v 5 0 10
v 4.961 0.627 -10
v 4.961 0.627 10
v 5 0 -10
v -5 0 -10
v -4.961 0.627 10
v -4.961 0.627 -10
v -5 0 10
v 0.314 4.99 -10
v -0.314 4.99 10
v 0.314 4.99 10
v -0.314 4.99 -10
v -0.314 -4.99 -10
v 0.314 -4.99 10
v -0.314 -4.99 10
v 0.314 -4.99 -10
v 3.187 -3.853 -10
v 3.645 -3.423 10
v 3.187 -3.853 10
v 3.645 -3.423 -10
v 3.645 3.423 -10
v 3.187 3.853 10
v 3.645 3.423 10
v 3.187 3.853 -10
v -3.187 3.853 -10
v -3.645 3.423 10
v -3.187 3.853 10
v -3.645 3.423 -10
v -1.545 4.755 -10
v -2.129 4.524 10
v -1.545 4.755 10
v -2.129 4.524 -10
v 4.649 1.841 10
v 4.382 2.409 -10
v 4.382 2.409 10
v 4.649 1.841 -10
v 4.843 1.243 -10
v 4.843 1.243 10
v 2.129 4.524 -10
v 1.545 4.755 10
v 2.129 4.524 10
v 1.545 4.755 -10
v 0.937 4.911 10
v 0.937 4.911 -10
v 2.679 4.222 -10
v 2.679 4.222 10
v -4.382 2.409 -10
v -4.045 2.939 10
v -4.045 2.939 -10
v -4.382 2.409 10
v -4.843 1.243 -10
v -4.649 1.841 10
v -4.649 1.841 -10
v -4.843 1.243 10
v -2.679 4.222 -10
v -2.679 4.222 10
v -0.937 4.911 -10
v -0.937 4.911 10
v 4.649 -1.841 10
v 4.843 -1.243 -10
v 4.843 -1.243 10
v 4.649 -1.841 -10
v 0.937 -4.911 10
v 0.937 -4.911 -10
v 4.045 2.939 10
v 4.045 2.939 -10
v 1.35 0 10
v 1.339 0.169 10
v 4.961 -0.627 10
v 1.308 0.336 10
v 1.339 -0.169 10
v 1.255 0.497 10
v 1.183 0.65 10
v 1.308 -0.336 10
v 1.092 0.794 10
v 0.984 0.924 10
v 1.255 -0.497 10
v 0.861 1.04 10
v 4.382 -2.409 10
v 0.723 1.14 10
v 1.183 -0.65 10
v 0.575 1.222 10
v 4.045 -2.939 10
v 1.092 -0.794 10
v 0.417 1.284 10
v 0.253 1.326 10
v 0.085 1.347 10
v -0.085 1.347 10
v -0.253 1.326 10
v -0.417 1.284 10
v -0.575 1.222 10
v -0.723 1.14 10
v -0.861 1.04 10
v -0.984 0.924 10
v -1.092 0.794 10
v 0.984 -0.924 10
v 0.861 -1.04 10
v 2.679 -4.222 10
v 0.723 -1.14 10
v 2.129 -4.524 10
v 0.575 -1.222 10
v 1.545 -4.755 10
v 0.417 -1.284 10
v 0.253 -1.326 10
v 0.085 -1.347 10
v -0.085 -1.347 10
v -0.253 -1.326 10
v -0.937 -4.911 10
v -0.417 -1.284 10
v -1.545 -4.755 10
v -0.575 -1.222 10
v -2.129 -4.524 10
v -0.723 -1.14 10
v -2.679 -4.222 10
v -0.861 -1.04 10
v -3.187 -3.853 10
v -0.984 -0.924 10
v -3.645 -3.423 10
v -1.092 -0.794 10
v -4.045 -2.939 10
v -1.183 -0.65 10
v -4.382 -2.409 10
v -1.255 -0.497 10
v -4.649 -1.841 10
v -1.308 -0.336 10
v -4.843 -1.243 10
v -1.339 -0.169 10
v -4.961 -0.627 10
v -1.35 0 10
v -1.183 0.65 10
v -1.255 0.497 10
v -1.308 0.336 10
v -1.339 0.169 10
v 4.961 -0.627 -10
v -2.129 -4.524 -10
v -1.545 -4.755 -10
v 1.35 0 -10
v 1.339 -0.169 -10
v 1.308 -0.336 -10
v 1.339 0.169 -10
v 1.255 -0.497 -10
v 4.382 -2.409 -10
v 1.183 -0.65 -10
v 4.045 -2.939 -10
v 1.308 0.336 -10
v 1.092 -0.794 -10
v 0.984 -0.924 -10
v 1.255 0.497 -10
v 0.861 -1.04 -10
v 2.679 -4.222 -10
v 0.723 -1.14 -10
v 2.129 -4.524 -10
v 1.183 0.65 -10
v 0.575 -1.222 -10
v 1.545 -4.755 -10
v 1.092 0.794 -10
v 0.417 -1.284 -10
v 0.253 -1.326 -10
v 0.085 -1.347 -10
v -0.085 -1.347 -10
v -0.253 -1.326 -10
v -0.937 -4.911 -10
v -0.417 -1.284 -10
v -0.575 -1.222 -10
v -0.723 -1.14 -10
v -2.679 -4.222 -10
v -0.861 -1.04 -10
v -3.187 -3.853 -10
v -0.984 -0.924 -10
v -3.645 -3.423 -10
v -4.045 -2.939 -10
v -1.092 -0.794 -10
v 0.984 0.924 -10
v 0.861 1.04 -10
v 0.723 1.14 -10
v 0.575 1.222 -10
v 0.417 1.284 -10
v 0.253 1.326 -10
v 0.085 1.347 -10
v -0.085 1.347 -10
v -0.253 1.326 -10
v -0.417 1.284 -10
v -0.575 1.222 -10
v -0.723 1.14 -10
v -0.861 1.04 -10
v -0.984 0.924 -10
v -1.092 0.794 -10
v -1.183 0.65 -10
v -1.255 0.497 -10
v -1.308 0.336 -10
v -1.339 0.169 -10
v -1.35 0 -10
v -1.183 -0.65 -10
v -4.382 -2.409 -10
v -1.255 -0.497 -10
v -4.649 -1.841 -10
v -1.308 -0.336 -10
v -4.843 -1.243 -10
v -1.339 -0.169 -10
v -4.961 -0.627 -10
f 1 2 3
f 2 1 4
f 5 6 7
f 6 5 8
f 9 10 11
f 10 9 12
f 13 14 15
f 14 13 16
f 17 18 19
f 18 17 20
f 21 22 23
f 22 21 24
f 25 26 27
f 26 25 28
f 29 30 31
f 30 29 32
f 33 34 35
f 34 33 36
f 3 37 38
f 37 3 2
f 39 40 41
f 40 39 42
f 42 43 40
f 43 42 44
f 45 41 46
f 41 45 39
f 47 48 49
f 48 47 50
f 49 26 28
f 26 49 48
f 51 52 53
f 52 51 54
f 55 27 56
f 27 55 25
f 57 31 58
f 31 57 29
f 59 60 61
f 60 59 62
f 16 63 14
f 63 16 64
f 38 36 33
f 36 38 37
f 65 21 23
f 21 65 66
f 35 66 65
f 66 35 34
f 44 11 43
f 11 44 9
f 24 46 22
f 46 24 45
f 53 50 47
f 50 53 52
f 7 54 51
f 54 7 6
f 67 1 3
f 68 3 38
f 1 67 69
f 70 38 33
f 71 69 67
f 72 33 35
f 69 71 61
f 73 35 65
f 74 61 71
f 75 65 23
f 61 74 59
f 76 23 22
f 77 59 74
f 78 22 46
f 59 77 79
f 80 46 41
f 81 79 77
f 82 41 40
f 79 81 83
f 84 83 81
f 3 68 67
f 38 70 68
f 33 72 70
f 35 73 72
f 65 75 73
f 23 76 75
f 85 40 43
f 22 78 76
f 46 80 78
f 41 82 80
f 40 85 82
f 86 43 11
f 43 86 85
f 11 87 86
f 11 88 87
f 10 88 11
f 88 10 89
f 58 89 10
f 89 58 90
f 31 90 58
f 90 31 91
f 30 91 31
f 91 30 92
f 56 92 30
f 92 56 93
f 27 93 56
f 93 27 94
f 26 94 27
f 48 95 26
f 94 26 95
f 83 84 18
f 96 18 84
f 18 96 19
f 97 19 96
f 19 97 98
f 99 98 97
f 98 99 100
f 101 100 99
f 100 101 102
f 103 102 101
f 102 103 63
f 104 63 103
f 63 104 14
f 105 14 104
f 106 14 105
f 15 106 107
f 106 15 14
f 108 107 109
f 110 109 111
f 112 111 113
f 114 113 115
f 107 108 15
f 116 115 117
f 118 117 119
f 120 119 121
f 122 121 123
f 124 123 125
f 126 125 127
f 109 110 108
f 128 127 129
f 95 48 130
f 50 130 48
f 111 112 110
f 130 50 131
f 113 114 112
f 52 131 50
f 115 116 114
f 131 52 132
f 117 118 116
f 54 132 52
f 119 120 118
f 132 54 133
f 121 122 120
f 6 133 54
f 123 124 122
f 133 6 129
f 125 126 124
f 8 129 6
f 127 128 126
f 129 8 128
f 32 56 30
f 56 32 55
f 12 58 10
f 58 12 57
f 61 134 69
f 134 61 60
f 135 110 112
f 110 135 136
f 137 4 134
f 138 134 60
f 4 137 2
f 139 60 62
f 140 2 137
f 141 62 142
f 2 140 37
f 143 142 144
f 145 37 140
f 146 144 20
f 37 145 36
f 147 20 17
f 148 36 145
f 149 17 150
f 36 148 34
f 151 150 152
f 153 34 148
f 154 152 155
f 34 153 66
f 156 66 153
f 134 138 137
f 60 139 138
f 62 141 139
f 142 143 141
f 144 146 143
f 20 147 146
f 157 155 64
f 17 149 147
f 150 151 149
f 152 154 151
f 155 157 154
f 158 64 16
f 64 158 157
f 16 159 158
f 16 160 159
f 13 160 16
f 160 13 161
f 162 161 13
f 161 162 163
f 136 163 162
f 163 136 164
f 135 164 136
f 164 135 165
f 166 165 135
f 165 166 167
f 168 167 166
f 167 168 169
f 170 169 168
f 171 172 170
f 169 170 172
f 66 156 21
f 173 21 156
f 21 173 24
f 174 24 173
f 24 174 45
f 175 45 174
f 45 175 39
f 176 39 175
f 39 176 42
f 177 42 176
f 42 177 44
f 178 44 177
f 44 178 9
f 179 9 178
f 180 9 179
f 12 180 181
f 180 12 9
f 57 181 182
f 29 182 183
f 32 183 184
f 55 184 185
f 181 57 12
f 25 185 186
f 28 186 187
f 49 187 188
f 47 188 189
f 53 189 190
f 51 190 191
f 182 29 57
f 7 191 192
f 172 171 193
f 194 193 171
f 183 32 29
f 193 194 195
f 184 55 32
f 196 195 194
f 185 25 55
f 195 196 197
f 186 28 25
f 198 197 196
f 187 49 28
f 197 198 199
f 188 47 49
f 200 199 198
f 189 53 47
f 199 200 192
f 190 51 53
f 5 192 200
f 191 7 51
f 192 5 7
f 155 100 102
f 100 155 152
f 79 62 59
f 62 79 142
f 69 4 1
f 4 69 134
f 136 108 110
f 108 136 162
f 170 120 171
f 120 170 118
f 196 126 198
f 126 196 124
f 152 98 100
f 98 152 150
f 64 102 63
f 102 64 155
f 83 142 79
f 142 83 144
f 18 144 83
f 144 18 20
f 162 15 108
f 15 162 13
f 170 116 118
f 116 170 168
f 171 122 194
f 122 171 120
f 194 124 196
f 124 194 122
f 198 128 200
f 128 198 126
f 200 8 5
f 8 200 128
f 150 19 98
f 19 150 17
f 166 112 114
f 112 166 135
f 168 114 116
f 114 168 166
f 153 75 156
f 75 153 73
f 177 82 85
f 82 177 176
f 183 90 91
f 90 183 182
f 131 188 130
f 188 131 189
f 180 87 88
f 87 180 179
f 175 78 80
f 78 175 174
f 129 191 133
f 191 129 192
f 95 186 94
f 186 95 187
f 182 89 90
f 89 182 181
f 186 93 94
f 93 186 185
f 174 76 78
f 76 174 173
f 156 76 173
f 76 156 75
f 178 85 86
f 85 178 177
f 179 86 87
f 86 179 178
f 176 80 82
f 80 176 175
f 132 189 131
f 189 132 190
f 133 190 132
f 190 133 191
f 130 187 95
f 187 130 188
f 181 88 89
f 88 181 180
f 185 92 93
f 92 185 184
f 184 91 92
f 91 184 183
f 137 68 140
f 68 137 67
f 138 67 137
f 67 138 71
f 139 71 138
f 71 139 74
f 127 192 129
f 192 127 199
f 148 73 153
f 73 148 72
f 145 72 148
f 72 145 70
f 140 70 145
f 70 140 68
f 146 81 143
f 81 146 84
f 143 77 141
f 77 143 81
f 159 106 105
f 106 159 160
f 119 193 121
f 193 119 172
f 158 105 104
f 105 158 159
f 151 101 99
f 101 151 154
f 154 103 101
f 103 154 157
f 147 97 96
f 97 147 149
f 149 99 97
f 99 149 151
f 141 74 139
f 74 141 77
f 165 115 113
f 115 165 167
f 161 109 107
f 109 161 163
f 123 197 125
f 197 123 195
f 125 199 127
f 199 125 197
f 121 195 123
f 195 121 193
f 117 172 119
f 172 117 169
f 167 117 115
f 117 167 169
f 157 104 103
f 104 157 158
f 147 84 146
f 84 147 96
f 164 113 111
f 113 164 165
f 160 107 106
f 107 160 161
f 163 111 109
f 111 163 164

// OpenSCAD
$fn = 50;


difference() {
	union() {
		translate(v = [0, 0, -10.0000000000]) {
			cylinder(h = 20, r = 5.0000000000);
		}
	}
	union() {
		translate(v = [0, 0, -100.0000000000]) {
			cylinder(h = 200, r = 1.3500000000);
		}
	}
}
